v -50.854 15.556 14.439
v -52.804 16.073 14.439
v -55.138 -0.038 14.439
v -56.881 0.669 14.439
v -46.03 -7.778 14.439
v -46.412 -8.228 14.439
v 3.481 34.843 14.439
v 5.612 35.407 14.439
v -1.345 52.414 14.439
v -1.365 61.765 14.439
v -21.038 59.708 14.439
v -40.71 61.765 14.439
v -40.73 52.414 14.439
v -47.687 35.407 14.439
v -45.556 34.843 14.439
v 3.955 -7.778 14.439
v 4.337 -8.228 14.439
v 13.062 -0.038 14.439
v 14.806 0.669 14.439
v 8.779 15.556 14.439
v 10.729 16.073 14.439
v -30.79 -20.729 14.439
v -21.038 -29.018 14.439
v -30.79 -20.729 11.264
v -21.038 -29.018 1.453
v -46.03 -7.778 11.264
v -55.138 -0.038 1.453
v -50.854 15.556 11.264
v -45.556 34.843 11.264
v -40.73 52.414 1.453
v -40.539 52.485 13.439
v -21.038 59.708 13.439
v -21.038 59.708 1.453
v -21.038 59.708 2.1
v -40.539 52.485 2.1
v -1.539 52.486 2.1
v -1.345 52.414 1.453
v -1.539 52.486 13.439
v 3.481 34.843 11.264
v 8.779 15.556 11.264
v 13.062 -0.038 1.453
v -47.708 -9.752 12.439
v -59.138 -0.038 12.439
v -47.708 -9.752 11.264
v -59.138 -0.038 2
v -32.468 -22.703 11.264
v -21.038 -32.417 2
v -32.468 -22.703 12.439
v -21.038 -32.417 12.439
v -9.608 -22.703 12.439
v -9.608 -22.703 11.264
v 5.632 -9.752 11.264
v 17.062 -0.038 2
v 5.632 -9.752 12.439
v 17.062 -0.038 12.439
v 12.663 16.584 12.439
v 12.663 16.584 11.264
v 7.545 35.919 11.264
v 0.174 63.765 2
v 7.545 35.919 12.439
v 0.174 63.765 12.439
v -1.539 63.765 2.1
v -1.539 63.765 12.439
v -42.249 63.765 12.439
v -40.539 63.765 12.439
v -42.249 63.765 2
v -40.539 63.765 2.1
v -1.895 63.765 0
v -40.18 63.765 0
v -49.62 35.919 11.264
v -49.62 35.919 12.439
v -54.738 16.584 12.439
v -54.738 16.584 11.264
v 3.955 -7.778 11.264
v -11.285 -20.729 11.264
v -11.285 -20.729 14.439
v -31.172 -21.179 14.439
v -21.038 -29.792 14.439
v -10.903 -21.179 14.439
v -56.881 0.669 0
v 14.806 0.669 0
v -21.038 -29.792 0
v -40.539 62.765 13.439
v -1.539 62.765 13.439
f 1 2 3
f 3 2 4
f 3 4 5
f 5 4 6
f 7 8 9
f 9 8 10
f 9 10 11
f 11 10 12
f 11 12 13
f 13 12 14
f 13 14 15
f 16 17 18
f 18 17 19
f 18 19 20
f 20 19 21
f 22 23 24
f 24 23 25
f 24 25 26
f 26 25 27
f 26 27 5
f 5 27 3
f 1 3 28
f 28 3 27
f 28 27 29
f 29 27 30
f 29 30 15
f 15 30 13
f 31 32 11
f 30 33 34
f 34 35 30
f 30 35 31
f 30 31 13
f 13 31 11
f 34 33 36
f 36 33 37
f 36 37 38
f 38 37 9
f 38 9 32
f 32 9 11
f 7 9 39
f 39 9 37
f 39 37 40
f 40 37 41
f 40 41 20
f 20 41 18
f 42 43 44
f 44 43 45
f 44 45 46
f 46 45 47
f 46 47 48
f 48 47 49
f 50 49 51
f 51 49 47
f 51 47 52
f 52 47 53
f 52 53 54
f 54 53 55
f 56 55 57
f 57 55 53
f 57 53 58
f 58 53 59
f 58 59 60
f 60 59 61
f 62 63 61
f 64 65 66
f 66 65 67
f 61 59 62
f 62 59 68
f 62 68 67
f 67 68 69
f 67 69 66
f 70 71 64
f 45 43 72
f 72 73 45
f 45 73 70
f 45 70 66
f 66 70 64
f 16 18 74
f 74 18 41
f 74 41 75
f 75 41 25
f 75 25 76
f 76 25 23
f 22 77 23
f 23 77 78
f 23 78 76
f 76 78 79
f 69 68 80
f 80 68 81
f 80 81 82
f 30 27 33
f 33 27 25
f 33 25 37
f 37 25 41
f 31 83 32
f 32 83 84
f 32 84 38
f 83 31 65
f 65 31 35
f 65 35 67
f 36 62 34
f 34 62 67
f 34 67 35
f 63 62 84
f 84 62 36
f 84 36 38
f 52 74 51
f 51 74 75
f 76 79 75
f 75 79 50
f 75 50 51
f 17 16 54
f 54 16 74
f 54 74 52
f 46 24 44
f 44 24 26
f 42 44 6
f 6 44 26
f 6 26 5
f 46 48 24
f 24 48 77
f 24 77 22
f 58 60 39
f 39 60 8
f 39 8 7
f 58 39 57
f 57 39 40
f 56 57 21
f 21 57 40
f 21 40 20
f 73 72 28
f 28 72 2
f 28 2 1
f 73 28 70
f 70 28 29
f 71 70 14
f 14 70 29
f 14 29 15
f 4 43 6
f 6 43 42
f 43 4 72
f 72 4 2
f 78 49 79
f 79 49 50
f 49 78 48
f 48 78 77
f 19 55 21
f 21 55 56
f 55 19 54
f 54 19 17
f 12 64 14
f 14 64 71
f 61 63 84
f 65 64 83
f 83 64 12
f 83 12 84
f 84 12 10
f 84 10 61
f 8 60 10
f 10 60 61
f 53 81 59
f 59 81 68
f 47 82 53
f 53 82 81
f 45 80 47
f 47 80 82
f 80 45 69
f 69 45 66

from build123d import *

# Parameters (mm, degrees)
BOSS_EXTRUDE3_DEPTH = 14.43945182
BOSS_EXTRUDE4_DEPTH = 1.453195813
SKETCH3_W           = 39
SKETCH3_H           = 11.33945182
CUT_EXTRUDE2_DEPTH  = 20
SKETCH6_W           = 20
SKETCH6_H           = 3.175
CUT_EXTRUDE3_DEPTH  = 20
SKETCH5_W           = 20
SKETCH5_H           = 3.175
CUT_EXTRUDE4_DEPTH  = 20
SKETCH8_W           = 3.175
SKETCH8_H           = 20
CUT_EXTRUDE5_DEPTH  = 20
SKETCH7_W           = 3.175
SKETCH7_H           = 20
CUT_EXTRUDE6_DEPTH  = 20
CHAMFER1_SIZE       = 2
CHAMFER2_SIZE       = 2


with BuildPart() as part:
    # Sketch1 → Boss-Extrude3 (new body)
    with BuildSketch(Plane.XY):
        Polygon((-59.137511347, -0.038105162), (-21.037511347, -32.416956285), (17.062488653, -0.038105162), (0.174311479, 63.764633586), (-42.249334174, 63.764633586), align=None)
        Polygon((-21.037511347, -29.017601836), (-55.137511347, -0.038105162), (-40.729968911, 52.414123882), (-21.037511347, 59.708444624), (-1.345053783, 52.414123882), (13.062488653, -0.038105162), align=None, mode=Mode.SUBTRACT)
    extrude(amount=BOSS_EXTRUDE3_DEPTH)

    # Sketch1<5> → Boss-Extrude4 (add)
    with BuildSketch(Plane.XY):
        Polygon((-55.137511347, -0.038105162), (-40.729968911, 52.414123882), (-21.037511347, 59.708444624), (-1.345053783, 52.414123882), (13.062488653, -0.038105162), (-21.037511347, -29.017601836), align=None)
    extrude(amount=BOSS_EXTRUDE4_DEPTH)

    # Sketch3 → Cut-Extrude2 (cut)
    with BuildSketch(Plane(origin=(0, 63.764633586, 0), x_dir=(1, 0, 0), z_dir=(0, 1, 0))):
        with Locations((-21.039334174, -7.76972591)):
            Rectangle(SKETCH3_W, SKETCH3_H)
    extrude(amount=-CUT_EXTRUDE2_DEPTH, mode=Mode.SUBTRACT)

    # Sketch6 → Cut-Extrude3 (cut)
    with BuildSketch(Plane(origin=(7.174060124, -8.441673539, 0), x_dir=(0.762, 0.6475770224459791, 0), z_dir=(0.647577022445979, -0.7619999999999999, 0))):
        with Locations((-12.023059674, 12.85195182)):
            Rectangle(SKETCH6_W, SKETCH6_H)
    extrude(amount=-CUT_EXTRUDE3_DEPTH, mode=Mode.SUBTRACT)

    # Sketch5 → Cut-Extrude4 (cut)
    with BuildSketch(Plane(origin=(-24.818473342, -29.203748791, 0), x_dir=(0.762, -0.6475770224459791, 0), z_dir=(-0.647577022445979, -0.7619999999999999, 0))):
        with Locations((-20.038107619, 12.85195182)):
            Rectangle(SKETCH5_W, SKETCH5_H)
    extrude(amount=-CUT_EXTRUDE4_DEPTH, mode=Mode.SUBTRACT)

    # Sketch8 → Cut-Extrude5 (cut)
    with BuildSketch(Plane(origin=(15.935890818, 4.218128451, 0), x_dir=(0, 0, -1), z_dir=(0.9667081628497367, 0.2558814723259324, 0))):
        with Locations((-12.85195182, 22.79218871)):
            Rectangle(SKETCH8_W, SKETCH8_H)
    extrude(amount=-CUT_EXTRUDE5_DEPTH, mode=Mode.SUBTRACT)

    # Sketch7 → Cut-Extrude6 (cut)
    with BuildSketch(Plane(origin=(-55.256037606, 14.625920004, 0), x_dir=(0, 0, 1), z_dir=(-0.9667081628497369, 0.25588147232593195, 0))):
        with Locations((12.85195182, 12.025969955)):
            Rectangle(SKETCH7_W, SKETCH7_H)
    extrude(amount=-CUT_EXTRUDE6_DEPTH, mode=Mode.SUBTRACT)

    # Chamfer1
    # the kernel refuses this chamfer: 2 mm, written as the material it takes off along each edge
    with BuildSketch(Plane(origin=(-53.421537372, 21.556575571, 14.43945182), x_dir=(0.9663426668416519, -0.255784727868533, 0.027495876610586473), z_dir=(-0.255881472325932, -0.9667081628497369, 0))) as chamfer1_piece_1:
        Polygon((CHAMFER1_SIZE * 0.999621916911, -CHAMFER1_SIZE * 0.0274958766106), (-CHAMFER1_SIZE * 0.0274958766106, -CHAMFER1_SIZE * 0.999621916911), (0, 0), align=None)
    extrude(amount=27.481731952, mode=Mode.SUBTRACT)
    with BuildSketch(Plane(origin=(-63.056756221, 3.292620462, 14.43945182), x_dir=(-0.01780569790502669, -0.020951857977268146, -0.9996219169112968), z_dir=(0.762, -0.6475770224459791, 0)), Plane(origin=(-36.386756221, -19.372575324, 14.43945182), x_dir=(-0.017805697905026844, -0.020951857977268323, -0.9996219169112968), z_dir=(0.762, -0.6475770224459791, 0)), Plane(origin=(-24.956756221, -35.747681909, 14.43945182), x_dir=(0.017805697905025137, -0.020951857977266314, -0.9996219169112968), z_dir=(0.762, 0.6475770224459791, 0)), Plane(origin=(1.713243779, -13.082486123, 14.43945182), x_dir=(0.01780569790502548, -0.02095185797726672, -0.9996219169112968), z_dir=(0.762, 0.6475770224459791, 0))) as chamfer1_piece_2:
        Polygon((CHAMFER1_SIZE * 0.999621916911, CHAMFER1_SIZE * 0.0274958766106), (-CHAMFER1_SIZE * 0.0274958766106, CHAMFER1_SIZE * 0.999621916911), (0, 0), align=None)
    extrude(amount=25.286731952, mode=Mode.SUBTRACT)
    with BuildSketch(Plane(origin=(18.378580711, -5.010239036, 14.43945182), x_dir=(0.02658048836416282, 0.007035685390008962, -0.9996219169112968), z_dir=(-0.2558814723259324, 0.9667081628497367, 0))) as chamfer1_piece_3:
        Polygon((CHAMFER1_SIZE * 0.999621916911, CHAMFER1_SIZE * 0.0274958766106), (-CHAMFER1_SIZE * 0.0274958766106, CHAMFER1_SIZE * 0.999621916911), (0, 0), align=None)
    extrude(amount=27.481731952, mode=Mode.SUBTRACT)
    with BuildSketch(Plane(origin=(8.861069348, 30.946471081, 14.43945182), x_dir=(0.026580488364163036, 0.007035685390009019, -0.9996219169112968), z_dir=(-0.2558814723259324, 0.9667081628497367, 0)), Plane(origin=(-40.933242115, 68.736767459, 14.43945182), x_dir=(-0.026580488364161756, 0.007035685390008668, -0.9996219169112968), z_dir=(-0.255881472325932, -0.9667081628497369, 0))) as chamfer1_piece_4:
        Polygon((CHAMFER1_SIZE * 0.999621916911, CHAMFER1_SIZE * 0.0274958766106), (-CHAMFER1_SIZE * 0.0274958766106, CHAMFER1_SIZE * 0.999621916911), (0, 0), align=None)
    extrude(amount=39.091731952, mode=Mode.SUBTRACT)
    with BuildSketch(Plane(origin=(5.317677455, 63.764633586, 14.43945182), x_dir=(0, 0.027495876610585623, -0.9996219169112968), z_dir=(-1, 0, 0))) as chamfer1_piece_5:
        Polygon((CHAMFER1_SIZE * 0.999621916911, CHAMFER1_SIZE * 0.0274958766106), (-CHAMFER1_SIZE * 0.0274958766106, CHAMFER1_SIZE * 0.999621916911), (0, 0), align=None)
    extrude(amount=52.710377605, mode=Mode.SUBTRACT)

    # Chamfer2
    chamfer2_edges = [part.edges().sort_by_distance(p)[0] for p in [
        (-50.693422761, 31.863264212, 0),
        (8.618400066, 31.863264212, 0),
        (-1.987511347, -16.227530724, 0),
        (-40.087511347, -16.227530724, 0),
    ]]
    chamfer(chamfer2_edges, length=CHAMFER2_SIZE)


solid = part.part
